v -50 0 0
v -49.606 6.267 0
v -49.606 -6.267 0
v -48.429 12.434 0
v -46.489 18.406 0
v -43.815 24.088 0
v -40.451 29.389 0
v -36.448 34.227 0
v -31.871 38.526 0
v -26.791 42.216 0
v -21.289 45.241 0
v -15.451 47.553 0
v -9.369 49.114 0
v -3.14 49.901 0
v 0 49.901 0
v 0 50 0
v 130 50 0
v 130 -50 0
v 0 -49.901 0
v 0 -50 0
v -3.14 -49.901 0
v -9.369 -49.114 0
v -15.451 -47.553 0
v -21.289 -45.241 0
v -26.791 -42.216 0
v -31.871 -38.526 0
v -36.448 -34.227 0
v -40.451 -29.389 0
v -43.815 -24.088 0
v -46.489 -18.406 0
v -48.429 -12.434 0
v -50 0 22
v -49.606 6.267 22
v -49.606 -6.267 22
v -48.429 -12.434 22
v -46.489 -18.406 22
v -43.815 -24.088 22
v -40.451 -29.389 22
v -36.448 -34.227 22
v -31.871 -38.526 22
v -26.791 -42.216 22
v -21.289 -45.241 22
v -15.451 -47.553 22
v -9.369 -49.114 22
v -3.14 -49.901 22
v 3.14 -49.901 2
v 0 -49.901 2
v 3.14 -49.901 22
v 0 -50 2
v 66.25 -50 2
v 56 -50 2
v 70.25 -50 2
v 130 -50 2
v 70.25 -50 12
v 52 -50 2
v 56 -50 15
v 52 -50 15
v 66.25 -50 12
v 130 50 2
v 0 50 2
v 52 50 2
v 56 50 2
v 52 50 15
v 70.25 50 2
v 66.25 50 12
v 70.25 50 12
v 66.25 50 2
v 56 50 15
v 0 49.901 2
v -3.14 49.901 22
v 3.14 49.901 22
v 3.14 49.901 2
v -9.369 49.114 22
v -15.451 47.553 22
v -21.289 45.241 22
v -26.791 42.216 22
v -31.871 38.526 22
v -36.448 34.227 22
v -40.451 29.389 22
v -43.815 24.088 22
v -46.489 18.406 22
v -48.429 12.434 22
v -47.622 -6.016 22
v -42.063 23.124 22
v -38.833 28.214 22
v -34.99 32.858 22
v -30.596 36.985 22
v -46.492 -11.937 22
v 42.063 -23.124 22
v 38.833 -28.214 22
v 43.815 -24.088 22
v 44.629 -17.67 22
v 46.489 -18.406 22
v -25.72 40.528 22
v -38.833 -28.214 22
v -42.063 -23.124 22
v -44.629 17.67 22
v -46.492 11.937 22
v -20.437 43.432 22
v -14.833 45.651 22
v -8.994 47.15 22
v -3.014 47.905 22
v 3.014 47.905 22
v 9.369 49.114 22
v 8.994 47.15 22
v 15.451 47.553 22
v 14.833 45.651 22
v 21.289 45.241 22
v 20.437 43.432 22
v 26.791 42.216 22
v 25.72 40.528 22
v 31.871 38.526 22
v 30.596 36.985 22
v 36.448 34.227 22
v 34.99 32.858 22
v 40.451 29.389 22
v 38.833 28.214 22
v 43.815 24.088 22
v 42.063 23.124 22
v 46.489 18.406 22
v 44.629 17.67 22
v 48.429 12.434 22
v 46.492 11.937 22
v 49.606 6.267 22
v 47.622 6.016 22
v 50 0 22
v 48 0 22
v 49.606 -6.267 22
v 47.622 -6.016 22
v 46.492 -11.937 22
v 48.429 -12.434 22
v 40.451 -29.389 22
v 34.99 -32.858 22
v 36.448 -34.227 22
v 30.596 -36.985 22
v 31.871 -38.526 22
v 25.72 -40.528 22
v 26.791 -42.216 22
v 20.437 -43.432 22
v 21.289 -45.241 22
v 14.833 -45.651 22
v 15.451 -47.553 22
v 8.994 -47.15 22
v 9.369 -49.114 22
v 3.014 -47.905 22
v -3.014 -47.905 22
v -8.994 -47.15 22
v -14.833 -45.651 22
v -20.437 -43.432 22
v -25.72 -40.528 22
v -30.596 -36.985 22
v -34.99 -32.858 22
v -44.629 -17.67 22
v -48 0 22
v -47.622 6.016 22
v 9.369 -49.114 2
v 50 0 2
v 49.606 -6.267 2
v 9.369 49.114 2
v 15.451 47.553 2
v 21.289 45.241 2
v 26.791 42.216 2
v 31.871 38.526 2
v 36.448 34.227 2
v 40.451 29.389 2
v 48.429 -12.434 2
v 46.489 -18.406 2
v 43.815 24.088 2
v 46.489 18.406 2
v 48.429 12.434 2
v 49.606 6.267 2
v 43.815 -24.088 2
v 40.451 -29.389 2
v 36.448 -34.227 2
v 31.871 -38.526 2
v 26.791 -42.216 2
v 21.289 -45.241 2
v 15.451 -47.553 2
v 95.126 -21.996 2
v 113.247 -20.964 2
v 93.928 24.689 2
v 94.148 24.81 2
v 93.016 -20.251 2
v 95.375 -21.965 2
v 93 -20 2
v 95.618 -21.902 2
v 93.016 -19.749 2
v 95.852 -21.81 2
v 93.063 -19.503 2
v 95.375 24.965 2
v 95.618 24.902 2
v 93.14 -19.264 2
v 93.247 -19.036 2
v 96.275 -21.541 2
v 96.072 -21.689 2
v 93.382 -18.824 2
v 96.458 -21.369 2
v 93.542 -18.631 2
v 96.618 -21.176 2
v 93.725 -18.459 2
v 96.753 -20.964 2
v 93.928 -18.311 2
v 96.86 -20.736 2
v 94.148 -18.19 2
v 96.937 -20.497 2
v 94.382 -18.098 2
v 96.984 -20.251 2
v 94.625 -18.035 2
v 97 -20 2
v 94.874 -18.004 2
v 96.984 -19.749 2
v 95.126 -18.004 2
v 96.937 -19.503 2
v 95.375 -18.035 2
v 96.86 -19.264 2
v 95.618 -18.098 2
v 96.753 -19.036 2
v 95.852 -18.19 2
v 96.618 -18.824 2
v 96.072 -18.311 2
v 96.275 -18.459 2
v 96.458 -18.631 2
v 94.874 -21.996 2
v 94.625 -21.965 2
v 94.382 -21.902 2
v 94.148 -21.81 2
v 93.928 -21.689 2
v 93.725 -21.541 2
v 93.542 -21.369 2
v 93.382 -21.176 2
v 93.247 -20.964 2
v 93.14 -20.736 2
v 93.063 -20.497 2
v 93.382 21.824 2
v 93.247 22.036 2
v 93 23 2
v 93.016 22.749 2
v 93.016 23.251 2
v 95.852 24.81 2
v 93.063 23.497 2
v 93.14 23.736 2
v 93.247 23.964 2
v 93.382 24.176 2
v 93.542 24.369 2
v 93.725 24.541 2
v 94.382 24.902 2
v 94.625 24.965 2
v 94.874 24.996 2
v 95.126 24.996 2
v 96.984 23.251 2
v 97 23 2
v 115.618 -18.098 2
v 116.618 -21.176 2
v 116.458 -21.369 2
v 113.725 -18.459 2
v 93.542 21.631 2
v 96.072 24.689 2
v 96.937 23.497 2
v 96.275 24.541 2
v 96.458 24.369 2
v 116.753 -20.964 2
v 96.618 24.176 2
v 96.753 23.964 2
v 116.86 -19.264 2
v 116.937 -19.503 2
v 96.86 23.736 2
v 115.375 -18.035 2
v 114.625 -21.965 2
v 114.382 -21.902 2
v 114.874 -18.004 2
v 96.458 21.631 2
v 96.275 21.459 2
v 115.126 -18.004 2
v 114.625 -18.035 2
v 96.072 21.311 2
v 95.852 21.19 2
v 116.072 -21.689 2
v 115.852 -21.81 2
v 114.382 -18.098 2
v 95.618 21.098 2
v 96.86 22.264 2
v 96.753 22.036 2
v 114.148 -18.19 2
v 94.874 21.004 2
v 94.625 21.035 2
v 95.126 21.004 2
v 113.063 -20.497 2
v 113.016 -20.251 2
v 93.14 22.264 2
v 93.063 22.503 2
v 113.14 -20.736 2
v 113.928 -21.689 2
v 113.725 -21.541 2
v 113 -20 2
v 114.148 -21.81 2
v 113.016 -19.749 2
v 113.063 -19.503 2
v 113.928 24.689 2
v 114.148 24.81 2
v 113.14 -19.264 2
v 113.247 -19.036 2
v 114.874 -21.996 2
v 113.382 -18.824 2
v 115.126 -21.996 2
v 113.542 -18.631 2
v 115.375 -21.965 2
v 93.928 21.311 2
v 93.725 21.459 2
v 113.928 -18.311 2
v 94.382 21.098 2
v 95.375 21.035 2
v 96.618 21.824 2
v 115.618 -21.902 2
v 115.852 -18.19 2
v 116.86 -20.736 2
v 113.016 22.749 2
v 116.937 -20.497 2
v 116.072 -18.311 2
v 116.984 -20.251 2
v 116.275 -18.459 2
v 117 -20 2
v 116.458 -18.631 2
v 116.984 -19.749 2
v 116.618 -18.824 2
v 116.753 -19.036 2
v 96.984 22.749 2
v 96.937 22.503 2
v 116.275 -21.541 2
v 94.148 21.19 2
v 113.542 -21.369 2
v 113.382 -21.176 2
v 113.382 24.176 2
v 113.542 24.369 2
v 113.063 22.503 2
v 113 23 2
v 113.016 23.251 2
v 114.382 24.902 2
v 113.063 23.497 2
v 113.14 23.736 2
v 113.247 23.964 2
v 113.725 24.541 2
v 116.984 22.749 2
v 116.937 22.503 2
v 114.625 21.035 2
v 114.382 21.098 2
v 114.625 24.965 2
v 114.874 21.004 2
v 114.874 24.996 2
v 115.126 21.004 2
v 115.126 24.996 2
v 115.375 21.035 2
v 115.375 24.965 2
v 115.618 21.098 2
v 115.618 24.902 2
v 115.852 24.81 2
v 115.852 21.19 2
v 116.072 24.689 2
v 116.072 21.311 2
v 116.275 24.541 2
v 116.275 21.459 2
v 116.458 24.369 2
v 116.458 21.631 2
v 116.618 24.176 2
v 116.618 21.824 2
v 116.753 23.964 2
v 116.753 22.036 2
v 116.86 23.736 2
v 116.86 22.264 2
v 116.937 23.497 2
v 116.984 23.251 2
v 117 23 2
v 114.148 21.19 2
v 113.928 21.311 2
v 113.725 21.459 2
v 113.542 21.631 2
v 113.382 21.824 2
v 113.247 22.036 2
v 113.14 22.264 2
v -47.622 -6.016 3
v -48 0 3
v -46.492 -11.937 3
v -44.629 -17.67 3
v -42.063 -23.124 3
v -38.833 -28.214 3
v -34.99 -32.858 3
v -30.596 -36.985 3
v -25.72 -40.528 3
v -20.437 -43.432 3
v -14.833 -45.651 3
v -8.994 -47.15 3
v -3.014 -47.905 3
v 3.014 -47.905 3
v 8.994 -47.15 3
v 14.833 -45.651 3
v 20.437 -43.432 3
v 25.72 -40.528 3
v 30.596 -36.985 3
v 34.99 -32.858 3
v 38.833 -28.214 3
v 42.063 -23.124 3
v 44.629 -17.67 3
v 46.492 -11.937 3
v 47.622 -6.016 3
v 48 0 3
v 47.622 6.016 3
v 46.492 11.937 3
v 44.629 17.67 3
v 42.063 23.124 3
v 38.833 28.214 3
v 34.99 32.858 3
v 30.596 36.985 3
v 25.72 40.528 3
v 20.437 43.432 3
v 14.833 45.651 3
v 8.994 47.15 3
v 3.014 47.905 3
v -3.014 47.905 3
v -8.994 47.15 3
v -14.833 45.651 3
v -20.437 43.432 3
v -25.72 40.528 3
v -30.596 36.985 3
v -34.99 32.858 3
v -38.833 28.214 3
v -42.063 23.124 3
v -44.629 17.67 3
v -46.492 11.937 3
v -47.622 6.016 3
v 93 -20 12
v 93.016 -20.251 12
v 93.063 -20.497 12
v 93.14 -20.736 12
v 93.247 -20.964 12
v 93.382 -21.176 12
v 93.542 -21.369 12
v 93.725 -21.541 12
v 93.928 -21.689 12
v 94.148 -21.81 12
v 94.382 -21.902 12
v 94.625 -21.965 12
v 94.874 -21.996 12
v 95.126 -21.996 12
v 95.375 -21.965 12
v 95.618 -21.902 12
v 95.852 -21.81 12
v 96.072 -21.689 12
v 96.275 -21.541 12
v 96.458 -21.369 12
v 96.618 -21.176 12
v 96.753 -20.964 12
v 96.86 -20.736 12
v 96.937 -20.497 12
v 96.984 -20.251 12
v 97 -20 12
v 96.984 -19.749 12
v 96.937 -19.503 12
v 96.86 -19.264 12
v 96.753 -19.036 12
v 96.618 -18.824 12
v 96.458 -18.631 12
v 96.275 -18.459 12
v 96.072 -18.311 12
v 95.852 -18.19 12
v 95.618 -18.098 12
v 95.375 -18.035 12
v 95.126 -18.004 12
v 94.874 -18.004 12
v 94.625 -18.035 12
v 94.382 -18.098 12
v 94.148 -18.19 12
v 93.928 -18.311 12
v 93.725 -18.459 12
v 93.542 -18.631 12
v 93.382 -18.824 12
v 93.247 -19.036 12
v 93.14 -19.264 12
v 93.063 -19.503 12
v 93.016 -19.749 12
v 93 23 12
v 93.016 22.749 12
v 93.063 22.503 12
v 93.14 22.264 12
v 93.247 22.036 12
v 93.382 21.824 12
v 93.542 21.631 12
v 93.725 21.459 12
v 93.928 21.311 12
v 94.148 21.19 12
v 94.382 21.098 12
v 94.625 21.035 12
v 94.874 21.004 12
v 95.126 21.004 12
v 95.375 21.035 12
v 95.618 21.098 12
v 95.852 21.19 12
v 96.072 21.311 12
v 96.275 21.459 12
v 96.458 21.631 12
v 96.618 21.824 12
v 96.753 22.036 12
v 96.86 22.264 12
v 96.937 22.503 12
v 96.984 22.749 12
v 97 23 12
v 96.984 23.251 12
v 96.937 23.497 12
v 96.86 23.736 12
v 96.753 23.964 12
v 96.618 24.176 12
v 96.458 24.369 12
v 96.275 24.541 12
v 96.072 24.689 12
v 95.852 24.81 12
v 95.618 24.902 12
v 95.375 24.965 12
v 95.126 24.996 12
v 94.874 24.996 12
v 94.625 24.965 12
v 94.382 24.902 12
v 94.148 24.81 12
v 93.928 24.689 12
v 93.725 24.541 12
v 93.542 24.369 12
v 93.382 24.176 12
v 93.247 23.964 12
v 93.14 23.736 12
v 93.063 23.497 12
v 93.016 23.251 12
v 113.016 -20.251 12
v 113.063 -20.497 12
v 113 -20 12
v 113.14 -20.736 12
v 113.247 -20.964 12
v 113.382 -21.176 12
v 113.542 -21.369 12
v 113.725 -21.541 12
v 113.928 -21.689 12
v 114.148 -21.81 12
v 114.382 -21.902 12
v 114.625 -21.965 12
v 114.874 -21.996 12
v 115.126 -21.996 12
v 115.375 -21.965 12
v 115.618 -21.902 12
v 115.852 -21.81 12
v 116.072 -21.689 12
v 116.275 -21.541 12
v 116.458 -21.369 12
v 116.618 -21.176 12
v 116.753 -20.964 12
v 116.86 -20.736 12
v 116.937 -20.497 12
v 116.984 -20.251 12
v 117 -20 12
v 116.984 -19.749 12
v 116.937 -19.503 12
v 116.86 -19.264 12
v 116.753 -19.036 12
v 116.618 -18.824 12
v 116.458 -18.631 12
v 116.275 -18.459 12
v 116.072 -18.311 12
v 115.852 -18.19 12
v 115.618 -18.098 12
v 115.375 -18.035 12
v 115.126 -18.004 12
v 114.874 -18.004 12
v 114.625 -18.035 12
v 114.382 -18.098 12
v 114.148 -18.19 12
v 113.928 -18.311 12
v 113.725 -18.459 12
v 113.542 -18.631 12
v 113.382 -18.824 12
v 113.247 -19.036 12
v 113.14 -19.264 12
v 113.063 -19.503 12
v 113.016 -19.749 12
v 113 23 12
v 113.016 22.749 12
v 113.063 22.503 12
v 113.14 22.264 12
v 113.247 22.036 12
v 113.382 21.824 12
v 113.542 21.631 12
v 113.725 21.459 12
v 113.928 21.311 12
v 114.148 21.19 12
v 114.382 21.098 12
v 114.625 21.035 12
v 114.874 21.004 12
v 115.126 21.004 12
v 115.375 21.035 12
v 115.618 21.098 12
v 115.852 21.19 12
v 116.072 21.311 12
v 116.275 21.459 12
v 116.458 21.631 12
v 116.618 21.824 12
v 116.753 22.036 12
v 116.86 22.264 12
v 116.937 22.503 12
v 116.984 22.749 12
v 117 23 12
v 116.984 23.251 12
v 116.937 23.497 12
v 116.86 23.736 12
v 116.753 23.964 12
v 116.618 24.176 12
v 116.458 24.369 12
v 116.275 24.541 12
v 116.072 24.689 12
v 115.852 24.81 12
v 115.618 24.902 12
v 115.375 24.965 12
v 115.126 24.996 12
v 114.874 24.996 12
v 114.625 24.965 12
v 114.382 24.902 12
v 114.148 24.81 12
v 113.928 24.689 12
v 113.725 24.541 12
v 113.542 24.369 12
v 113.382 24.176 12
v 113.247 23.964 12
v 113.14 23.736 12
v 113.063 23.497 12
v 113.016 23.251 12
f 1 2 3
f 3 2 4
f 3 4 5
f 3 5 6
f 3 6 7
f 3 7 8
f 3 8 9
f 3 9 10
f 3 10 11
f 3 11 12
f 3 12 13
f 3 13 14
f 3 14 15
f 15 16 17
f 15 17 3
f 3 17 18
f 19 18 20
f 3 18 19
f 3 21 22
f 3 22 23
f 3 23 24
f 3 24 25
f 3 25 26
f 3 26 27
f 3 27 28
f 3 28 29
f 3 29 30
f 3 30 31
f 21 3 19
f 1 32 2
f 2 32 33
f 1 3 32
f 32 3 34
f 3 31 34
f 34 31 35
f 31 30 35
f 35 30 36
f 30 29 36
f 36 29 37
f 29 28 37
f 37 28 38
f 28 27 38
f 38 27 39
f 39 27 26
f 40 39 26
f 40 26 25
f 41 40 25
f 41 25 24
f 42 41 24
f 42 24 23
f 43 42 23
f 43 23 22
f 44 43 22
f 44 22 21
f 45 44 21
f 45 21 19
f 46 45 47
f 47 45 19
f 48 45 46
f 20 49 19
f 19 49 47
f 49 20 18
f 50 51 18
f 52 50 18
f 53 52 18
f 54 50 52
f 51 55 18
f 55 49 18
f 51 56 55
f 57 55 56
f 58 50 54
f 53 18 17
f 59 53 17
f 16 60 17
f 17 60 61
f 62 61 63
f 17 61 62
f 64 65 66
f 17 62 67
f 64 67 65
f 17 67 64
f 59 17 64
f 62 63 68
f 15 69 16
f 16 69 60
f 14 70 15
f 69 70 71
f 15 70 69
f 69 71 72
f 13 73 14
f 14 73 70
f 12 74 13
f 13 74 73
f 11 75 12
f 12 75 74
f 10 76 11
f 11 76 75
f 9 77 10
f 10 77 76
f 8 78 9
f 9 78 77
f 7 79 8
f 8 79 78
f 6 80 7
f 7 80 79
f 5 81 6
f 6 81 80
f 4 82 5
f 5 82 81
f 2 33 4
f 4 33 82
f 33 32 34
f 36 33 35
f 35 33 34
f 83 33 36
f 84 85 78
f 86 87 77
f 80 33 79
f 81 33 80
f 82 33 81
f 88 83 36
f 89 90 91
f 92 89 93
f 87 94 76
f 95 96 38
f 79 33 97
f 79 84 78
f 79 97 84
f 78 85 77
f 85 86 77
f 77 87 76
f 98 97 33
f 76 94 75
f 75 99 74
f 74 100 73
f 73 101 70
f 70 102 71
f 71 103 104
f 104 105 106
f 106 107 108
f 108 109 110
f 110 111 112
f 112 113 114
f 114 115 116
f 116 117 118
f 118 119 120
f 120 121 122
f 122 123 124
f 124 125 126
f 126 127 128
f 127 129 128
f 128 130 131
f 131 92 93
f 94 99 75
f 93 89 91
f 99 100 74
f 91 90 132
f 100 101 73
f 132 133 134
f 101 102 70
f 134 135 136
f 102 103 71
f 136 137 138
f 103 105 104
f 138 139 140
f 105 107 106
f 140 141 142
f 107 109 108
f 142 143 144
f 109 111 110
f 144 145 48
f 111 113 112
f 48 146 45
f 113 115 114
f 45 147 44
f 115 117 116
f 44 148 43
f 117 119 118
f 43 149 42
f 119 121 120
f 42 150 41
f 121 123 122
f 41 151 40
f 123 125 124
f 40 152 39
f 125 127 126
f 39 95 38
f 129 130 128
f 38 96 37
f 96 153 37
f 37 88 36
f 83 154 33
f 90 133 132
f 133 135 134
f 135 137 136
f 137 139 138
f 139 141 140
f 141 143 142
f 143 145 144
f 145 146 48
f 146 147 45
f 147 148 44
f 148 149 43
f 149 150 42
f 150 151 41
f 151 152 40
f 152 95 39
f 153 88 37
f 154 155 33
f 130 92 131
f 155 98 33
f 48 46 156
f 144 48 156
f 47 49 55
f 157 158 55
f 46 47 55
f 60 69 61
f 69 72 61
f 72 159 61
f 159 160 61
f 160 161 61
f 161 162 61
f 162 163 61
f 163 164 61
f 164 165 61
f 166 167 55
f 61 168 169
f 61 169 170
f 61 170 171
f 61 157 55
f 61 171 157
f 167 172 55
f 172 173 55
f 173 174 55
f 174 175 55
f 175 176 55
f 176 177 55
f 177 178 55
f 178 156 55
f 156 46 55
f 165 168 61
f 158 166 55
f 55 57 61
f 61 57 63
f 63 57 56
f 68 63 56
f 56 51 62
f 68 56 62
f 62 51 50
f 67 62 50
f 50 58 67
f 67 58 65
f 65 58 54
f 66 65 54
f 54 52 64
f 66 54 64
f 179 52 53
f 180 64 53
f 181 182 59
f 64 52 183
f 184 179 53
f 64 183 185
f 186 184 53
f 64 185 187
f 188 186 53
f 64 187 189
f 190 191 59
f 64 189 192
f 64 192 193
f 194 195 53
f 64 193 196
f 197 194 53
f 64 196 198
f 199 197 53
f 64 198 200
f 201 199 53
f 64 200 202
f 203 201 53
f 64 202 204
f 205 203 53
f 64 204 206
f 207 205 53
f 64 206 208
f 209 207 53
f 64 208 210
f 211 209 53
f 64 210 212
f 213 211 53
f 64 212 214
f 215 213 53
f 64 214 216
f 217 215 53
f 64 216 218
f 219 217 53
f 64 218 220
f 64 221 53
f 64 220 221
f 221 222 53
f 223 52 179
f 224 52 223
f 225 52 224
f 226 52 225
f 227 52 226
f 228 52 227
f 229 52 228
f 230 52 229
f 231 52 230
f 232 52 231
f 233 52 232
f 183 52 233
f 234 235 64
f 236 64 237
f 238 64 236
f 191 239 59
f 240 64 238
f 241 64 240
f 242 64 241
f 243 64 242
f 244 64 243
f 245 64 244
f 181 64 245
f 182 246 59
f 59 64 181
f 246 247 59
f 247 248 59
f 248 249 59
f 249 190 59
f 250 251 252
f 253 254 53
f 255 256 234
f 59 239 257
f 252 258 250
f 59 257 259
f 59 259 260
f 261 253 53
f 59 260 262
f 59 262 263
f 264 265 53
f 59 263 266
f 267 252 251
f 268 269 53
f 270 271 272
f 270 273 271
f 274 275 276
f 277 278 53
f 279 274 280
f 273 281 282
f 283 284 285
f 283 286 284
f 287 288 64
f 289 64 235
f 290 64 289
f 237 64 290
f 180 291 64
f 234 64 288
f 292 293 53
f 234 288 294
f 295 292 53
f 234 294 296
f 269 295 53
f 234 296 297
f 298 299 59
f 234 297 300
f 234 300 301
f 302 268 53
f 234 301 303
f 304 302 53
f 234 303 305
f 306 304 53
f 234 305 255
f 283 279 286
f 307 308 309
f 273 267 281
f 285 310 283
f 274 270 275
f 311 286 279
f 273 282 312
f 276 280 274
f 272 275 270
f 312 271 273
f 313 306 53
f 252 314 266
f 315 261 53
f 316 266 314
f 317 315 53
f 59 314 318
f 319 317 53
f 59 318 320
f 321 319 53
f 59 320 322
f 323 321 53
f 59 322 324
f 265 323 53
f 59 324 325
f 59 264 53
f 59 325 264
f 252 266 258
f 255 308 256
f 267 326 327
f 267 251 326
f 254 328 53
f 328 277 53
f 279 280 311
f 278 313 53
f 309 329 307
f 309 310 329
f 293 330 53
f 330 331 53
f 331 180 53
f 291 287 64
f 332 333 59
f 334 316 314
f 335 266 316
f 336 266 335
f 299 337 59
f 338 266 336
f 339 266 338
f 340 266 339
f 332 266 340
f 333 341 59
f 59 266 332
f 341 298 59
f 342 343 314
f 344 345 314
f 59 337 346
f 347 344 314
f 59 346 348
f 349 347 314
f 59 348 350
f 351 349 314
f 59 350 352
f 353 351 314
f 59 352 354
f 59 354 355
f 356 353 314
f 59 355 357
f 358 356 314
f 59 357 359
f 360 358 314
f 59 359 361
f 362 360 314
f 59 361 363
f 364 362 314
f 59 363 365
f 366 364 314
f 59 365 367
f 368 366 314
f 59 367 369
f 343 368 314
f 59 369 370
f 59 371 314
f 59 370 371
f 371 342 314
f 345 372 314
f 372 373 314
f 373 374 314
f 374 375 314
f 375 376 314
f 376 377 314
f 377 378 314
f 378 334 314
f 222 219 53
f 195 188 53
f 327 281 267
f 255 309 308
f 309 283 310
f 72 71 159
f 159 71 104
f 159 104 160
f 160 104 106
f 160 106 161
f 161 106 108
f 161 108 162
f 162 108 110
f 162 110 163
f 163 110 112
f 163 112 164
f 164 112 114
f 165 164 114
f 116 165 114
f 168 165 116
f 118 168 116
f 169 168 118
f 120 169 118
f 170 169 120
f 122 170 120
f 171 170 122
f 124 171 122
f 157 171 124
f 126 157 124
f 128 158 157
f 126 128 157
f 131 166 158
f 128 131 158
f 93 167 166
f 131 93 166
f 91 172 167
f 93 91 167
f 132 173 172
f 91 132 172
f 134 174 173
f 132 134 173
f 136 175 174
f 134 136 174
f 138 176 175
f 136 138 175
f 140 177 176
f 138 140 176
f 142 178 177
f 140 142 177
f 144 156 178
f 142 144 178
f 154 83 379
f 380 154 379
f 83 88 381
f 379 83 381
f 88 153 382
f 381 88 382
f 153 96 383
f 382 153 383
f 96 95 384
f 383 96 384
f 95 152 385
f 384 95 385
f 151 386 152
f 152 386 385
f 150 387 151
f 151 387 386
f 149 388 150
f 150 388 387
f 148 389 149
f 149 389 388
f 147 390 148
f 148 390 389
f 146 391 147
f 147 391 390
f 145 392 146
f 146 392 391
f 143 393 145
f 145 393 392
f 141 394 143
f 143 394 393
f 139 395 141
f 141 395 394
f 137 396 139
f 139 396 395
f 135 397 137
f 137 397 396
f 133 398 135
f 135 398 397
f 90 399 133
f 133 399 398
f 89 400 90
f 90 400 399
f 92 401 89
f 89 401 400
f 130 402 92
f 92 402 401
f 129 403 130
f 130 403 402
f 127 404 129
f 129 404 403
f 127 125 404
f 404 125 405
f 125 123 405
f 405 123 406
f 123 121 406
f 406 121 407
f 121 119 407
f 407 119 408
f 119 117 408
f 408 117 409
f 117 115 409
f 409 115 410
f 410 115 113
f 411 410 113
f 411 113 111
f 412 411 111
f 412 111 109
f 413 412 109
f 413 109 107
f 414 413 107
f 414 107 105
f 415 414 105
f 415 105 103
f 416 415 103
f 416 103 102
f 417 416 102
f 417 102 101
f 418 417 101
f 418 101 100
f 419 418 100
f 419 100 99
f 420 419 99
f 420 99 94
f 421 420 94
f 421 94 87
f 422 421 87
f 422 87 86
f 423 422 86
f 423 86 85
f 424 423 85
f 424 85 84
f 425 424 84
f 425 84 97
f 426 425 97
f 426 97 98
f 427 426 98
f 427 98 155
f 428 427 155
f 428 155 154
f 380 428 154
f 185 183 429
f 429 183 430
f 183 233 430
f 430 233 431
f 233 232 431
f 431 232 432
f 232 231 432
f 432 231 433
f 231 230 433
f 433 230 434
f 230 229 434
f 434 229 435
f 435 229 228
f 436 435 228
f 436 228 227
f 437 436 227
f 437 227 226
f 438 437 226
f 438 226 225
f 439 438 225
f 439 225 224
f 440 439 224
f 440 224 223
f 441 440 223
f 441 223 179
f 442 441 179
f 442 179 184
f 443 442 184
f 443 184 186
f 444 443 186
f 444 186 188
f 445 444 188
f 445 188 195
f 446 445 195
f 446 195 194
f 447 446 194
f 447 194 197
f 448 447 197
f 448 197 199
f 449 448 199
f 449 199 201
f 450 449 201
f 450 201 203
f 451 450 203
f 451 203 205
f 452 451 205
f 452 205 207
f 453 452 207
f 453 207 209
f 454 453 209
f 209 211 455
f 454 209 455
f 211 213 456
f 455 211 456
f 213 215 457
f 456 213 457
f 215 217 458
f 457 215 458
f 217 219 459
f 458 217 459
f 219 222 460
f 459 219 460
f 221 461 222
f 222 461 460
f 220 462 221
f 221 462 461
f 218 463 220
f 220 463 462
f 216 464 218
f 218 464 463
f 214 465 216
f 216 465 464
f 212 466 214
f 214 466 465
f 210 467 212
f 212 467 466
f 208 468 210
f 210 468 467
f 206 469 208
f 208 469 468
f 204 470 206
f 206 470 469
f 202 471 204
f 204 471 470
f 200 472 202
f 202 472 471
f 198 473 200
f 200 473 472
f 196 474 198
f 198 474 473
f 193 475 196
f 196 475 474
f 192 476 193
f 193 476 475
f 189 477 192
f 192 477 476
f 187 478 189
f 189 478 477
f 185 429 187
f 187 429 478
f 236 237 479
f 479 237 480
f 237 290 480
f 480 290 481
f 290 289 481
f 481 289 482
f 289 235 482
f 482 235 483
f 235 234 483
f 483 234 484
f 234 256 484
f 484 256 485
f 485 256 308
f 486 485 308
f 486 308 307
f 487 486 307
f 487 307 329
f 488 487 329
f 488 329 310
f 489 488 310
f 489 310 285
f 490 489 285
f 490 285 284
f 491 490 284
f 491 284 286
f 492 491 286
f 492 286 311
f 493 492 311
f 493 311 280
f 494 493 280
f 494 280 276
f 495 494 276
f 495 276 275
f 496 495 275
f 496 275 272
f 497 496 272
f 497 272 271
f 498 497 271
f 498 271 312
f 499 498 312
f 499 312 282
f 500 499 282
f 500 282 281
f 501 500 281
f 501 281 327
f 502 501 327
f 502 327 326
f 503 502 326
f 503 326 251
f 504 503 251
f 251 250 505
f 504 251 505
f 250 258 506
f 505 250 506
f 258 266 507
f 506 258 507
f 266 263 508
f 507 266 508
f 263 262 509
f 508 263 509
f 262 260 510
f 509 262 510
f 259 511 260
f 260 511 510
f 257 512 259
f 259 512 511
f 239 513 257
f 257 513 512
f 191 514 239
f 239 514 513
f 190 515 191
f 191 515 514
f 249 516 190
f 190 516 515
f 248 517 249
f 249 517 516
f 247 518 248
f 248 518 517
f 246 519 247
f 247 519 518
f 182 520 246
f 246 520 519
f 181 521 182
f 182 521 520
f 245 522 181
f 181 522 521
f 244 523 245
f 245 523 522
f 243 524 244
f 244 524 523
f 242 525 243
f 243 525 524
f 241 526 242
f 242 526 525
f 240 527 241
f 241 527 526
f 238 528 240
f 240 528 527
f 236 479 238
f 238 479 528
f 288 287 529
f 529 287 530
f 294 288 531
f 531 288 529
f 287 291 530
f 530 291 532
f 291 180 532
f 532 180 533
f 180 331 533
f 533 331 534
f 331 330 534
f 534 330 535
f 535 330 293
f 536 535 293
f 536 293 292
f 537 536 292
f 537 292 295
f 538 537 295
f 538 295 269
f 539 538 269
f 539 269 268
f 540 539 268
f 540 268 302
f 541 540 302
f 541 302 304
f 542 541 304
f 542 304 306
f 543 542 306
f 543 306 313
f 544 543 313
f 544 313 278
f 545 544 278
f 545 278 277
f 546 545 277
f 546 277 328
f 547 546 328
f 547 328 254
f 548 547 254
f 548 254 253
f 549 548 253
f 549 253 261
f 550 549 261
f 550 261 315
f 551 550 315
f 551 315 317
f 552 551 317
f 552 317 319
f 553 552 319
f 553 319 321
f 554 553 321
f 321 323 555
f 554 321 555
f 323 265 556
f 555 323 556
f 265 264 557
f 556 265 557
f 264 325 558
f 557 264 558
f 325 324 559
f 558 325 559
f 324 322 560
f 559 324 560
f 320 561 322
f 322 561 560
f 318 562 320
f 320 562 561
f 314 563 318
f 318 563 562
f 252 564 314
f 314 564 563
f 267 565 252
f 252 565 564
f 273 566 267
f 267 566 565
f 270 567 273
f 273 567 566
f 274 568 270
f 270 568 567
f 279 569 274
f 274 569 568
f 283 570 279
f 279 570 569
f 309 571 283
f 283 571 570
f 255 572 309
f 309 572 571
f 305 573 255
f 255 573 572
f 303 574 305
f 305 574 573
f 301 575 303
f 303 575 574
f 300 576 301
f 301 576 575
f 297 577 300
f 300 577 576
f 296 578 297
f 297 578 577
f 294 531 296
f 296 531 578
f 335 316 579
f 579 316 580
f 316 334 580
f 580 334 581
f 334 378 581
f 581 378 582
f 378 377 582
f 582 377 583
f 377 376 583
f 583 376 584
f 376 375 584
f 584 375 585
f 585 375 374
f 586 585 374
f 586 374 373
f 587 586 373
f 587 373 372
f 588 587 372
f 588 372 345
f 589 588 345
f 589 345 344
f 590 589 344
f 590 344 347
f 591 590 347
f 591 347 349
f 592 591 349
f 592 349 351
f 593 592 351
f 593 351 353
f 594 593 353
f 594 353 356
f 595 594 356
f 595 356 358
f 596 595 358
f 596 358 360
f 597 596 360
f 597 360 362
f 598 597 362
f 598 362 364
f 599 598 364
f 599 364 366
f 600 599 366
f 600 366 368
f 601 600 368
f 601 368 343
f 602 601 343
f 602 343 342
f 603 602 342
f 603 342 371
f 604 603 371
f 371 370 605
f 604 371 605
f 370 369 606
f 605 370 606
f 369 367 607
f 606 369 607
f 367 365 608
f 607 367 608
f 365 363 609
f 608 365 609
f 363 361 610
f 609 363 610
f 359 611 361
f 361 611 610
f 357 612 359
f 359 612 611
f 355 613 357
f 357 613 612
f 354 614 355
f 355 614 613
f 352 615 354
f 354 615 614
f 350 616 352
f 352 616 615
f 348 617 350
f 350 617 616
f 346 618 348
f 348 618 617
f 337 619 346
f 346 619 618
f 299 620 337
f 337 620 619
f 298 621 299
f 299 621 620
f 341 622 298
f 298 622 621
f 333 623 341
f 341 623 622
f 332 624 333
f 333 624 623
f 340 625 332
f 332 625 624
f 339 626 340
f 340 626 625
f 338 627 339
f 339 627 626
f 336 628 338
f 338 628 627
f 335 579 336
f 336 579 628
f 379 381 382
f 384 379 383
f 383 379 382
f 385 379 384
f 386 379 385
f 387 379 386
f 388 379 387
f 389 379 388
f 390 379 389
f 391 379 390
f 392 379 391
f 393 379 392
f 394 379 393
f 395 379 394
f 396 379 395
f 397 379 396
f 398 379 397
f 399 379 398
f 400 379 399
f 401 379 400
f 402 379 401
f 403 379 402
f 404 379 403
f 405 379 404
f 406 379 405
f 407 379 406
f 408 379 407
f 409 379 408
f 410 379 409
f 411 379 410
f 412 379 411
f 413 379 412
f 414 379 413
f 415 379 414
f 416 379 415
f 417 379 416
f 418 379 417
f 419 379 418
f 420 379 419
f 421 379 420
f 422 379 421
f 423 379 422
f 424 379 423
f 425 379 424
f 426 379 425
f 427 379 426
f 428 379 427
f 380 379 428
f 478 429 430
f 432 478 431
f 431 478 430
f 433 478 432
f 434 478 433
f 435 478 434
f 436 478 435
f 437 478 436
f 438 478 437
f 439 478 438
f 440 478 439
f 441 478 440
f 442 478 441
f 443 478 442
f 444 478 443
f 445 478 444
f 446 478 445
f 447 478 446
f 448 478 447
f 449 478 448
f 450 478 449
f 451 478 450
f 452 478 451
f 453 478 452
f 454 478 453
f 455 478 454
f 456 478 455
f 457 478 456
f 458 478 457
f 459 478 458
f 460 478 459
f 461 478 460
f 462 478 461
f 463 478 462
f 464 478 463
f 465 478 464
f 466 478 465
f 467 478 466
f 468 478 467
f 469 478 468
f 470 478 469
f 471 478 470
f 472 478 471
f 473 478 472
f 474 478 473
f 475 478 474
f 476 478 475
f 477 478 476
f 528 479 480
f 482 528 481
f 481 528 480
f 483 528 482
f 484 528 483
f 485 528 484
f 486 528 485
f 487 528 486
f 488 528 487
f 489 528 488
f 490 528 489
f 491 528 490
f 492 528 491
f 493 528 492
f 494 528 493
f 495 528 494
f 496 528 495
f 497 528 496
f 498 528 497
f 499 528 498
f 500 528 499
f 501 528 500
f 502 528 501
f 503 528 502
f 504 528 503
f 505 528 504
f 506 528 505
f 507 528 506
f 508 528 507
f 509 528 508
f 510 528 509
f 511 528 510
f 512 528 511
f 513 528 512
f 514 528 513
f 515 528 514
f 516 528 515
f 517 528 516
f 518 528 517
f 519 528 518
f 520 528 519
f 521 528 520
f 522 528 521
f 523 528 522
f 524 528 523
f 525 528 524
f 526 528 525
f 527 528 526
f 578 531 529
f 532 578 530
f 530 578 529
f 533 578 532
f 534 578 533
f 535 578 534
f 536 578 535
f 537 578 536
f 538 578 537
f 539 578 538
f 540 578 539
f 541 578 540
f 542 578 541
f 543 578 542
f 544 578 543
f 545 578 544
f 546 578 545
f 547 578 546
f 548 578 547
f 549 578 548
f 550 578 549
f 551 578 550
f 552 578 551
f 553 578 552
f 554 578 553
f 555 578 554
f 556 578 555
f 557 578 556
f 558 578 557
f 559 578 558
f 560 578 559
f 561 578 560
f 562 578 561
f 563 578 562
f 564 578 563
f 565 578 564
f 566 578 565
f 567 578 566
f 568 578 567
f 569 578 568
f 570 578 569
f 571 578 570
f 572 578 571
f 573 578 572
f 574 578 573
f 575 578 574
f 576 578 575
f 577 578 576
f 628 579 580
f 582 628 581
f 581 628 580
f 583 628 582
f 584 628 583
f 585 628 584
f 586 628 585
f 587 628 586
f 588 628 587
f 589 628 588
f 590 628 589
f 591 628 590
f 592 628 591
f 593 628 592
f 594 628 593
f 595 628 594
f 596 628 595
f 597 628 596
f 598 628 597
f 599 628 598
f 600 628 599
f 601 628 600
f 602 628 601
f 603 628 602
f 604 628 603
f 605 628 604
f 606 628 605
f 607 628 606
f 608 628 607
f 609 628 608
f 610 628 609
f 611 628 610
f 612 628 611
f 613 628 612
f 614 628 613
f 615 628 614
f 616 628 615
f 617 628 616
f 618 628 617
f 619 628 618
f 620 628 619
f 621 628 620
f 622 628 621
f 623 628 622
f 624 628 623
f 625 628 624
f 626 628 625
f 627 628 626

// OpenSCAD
$fn = 50;

// Height (z) of the base board
baseHeight = 2;

// Make the module sections stick out a little from the base so 
// they are easily ifentified.
moduleHeight = baseHeight + 0.5;

module PlantStand() {
	difference() {
		union() {
			cylinder(h = baseHeight+20,r = 50);
		}
		union() {
			translate(v=[0, 0,3]) {
				cylinder(h = baseHeight+20,r = 48);
			}
		}
	}
}

/////////////////////////////////////////////////////////////////////
//
/////////////////////////////////////////////////////////////////////
module BaseBoard(x,y,height,width) {
	translate([x, y, 0]) {
		cube([height, width,baseHeight]);
	}
}

module BackMountCutout(x,y,length) {
	translate([x, y, 0]) {
		difference() {
			union() {
				//cube([length, 10,10]);
			}
			
		}
	}
}

module Mount(x,y,length, height=15) {
	translate([x, y, 0]) {
		difference() {
			union() {
				cube([4, length,height]);
			}
			union() {
				rotate([90,90,90]) {
					translate([x-50,y+50,-5]) {
						//#cylinder(r=1.25, h=15, center=true, $fn=50);	
					}
					translate([x,y+100,5]) {
						//#cylinder(r=1.25, h=15, center=true, $fn=50);	
					}
				}				
			}
		}
	}
}

module PumpPin(x,y) {
	translate([x, y, (baseHeight + 10)/2]) {
		cylinder(r=2, h=baseHeight + 10, center=true, $fn=50);	
	}
}

module PumpPins() {

	translate([95, -20,0]) {
		PumpPin(0,0);
		PumpPin(20,0);
		PumpPin(20,43);
		PumpPin(0,43);
	}
}

/////////////////////////////////////////////////////////////////////
// Main
/////////////////////////////////////////////////////////////////////

difference() {
	union() {
		BaseBoard(0, -50,130, 100);
		PlantStand();
		Mount(52,-50,100);
		Mount(66.25,-50,100, 12);
		PumpPins();
	}
	union() {
		BackMountCutout(70,-50);
	}
}
